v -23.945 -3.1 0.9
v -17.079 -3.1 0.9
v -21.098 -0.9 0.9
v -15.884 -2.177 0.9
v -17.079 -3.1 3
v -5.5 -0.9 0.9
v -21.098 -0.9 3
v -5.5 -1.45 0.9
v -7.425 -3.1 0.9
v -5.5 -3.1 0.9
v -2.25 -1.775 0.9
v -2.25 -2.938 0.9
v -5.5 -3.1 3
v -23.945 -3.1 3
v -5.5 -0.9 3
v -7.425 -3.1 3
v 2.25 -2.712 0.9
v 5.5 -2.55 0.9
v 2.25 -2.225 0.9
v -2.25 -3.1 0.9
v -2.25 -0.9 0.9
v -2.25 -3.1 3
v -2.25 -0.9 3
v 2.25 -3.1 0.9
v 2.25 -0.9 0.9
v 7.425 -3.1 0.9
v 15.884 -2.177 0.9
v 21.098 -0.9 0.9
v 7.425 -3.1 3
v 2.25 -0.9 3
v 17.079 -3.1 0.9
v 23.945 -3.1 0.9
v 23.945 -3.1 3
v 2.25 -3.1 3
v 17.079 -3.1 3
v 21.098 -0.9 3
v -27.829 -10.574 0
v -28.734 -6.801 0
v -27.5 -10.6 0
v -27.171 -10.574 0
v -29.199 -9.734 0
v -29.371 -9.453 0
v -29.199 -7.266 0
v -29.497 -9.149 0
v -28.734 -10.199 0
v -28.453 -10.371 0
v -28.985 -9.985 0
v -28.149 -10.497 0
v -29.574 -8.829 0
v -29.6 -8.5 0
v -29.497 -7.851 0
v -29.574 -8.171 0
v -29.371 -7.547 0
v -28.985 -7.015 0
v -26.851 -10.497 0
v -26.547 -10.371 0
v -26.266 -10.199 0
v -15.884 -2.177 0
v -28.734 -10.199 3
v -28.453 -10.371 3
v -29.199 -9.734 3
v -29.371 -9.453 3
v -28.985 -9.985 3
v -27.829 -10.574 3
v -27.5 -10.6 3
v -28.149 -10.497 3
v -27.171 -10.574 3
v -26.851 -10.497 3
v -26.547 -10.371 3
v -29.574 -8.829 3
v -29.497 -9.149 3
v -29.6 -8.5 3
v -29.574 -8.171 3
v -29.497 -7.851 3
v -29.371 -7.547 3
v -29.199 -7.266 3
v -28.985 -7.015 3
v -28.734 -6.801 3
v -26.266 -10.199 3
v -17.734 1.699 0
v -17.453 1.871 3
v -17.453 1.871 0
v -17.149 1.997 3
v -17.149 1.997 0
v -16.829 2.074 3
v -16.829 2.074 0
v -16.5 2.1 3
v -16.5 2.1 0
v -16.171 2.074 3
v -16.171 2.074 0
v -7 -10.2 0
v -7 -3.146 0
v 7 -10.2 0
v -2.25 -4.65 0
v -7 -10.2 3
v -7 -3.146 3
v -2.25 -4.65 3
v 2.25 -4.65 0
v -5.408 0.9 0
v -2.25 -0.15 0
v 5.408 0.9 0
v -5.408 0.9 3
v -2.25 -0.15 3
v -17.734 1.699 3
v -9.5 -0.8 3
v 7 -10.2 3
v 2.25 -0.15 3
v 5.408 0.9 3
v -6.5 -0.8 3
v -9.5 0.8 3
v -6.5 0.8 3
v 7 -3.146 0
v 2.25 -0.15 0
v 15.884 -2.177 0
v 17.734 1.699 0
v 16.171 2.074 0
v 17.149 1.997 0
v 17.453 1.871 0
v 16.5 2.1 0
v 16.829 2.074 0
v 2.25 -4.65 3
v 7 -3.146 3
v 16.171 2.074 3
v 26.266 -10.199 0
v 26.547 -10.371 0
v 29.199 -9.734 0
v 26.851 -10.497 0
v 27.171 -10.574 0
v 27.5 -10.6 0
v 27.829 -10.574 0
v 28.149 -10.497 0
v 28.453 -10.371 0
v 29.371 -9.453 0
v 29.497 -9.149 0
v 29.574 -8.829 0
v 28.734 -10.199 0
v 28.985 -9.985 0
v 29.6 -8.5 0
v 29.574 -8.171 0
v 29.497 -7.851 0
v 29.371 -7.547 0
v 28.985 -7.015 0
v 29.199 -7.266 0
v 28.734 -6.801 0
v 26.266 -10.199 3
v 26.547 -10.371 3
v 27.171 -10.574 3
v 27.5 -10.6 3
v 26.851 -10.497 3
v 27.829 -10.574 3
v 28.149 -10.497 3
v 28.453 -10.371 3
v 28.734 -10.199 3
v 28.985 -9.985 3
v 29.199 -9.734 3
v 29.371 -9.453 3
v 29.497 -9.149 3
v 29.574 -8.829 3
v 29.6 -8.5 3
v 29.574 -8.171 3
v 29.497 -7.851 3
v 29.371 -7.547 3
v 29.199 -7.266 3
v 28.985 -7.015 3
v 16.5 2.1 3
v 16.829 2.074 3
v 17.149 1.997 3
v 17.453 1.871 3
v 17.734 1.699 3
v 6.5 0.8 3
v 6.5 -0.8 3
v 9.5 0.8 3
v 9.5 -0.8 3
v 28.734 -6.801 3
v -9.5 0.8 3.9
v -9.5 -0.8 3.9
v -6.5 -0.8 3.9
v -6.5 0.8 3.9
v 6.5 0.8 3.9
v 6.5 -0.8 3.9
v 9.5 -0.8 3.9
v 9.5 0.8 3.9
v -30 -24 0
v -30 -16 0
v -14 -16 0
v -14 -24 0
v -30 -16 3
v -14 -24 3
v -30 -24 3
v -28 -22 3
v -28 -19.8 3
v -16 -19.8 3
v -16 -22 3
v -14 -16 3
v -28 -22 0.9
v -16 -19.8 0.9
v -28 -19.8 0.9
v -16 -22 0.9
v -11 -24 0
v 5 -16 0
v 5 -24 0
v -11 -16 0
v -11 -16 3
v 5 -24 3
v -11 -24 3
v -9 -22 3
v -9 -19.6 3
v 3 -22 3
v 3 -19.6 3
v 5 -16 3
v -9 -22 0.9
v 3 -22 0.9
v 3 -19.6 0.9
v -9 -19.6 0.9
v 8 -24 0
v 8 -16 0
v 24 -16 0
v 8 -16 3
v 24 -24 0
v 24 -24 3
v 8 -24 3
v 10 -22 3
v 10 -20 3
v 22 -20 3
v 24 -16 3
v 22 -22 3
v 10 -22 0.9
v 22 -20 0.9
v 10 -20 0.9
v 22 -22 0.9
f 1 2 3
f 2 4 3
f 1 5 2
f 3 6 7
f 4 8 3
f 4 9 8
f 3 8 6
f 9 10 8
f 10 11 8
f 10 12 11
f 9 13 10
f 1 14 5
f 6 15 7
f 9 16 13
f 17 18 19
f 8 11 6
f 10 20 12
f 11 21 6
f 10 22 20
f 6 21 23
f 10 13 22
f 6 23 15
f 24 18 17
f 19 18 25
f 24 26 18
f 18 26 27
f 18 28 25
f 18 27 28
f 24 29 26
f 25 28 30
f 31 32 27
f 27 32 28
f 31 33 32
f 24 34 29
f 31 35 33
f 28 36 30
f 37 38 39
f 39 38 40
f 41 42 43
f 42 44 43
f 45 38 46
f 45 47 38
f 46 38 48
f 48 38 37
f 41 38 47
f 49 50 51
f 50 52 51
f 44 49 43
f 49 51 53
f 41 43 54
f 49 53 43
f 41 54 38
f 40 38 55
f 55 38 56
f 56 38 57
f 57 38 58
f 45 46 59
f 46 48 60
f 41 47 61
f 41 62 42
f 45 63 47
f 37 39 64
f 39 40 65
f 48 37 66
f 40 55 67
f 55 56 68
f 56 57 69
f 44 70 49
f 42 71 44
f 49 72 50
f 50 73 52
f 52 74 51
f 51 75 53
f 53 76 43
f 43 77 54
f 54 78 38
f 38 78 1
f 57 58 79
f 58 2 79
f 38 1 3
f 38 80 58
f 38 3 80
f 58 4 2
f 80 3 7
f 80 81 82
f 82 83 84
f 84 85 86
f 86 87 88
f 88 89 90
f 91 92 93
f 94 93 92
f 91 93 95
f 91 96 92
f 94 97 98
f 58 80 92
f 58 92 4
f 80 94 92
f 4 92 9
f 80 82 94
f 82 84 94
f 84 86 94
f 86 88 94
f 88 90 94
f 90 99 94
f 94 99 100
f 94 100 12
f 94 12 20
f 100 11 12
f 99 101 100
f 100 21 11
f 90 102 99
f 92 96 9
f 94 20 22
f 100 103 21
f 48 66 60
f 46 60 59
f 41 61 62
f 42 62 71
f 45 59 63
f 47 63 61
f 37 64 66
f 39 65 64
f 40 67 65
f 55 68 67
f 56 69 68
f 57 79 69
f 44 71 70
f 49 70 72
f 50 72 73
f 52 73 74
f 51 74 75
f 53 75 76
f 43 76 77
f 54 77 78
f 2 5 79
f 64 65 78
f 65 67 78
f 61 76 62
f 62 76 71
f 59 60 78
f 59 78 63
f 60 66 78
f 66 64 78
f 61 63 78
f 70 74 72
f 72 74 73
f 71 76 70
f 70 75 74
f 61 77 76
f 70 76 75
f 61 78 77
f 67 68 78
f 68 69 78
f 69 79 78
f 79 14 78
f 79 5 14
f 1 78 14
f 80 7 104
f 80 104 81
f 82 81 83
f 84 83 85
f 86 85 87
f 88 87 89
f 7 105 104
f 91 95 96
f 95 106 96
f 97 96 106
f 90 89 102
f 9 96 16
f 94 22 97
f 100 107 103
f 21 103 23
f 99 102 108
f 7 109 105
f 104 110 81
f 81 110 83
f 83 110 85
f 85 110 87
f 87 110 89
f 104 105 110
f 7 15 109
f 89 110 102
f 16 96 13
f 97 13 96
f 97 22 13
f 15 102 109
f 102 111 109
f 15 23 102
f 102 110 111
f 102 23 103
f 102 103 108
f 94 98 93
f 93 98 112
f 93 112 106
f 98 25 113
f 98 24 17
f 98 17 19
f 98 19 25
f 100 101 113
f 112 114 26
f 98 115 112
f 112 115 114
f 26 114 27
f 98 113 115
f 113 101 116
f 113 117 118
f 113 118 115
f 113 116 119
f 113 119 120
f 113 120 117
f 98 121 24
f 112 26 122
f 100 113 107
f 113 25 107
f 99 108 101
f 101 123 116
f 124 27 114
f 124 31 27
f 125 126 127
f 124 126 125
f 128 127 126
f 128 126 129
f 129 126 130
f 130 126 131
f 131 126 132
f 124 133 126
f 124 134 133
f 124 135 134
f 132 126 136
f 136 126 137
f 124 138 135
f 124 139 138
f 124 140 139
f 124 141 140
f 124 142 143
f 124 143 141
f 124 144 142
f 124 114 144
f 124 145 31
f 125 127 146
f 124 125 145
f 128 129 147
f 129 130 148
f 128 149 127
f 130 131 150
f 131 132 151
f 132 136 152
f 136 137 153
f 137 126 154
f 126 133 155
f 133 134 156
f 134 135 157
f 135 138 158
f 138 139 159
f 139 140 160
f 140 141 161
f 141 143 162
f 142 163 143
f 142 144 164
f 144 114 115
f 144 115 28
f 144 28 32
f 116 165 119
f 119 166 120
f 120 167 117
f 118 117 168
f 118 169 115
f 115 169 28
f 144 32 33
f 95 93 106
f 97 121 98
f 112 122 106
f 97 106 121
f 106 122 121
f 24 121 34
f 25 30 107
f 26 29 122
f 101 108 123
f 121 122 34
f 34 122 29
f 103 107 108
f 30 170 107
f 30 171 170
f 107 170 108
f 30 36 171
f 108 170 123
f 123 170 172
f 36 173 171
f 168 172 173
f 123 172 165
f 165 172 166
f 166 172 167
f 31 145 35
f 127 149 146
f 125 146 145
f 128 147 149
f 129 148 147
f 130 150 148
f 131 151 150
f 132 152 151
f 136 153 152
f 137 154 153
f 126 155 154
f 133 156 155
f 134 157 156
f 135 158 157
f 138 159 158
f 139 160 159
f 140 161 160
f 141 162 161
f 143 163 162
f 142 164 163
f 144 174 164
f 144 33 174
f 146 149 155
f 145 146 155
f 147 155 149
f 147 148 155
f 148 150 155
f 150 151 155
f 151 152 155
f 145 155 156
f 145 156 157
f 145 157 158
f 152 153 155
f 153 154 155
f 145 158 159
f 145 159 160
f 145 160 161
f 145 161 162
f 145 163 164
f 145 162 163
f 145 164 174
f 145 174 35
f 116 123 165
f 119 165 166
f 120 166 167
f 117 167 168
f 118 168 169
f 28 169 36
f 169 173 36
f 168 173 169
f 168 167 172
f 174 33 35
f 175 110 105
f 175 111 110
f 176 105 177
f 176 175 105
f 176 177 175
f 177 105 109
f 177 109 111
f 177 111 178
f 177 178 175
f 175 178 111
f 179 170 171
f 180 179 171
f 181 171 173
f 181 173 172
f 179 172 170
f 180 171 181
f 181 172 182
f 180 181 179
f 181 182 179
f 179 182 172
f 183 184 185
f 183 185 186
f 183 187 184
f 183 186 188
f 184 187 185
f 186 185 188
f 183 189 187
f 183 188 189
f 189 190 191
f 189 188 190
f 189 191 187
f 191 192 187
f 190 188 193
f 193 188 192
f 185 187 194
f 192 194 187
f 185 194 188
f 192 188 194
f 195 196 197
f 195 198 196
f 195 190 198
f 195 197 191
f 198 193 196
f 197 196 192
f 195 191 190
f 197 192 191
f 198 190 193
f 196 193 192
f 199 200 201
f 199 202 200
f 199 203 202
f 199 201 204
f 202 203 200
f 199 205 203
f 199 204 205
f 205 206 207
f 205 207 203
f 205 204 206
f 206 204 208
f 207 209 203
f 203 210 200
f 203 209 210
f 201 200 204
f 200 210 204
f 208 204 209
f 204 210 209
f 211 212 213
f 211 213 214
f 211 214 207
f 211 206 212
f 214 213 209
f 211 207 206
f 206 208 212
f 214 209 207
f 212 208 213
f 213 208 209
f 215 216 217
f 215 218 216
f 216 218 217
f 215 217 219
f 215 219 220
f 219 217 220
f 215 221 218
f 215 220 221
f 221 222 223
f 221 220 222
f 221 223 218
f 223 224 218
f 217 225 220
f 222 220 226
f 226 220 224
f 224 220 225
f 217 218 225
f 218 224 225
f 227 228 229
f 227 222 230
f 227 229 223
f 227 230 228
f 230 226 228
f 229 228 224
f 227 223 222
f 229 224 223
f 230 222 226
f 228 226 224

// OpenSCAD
// Vanguard RX top clip (top-only) - parametric prototype
// Author: generated by Copilot
//
// Purpose:
// - Similar to Oakley-style inner clip geometry
// - Removes lateral and lower frame sections (top-only support)
// - Two retention modes:
//   1) "glue" : flat back pads for lens bonding
//   2) "slot" : rear channel to seat lens top edge
//
// Workflow:
// 1) Open this file in OpenSCAD.
// 2) Adjust the parameters in section A.
// 3) Render (F6) and export STL.
// 4) Slice in Bambu Studio.
//
// Units: mm

///////////////////////////////
// A) MAIN PARAMETERS
///////////////////////////////

// Preset (2026-06-26):
// - top width: 55 mm
// - lens edge thickness: 2.0 mm

// Global multiplier for quick scaling after first test print.
global_scale = 1.00;

// Overall layout (front view).
half_total_width = 27.5;    // half distance from center to outer edge (total = 55 mm)
inner_gap = 11;             // gap between left and right inner lens areas
outer_top_y = 0;            // reference top line
inner_top_y = -1.2;         // inner top point slightly lower
outer_drop = 8.5;           // outer end lower than top

// Top strip geometry.
strip_width = 4.2;          // visual strip height in front view
part_thickness = 3.0;       // extrusion thickness (increased for 2 mm lens slot)

// Bridge block (center).
bridge_w = 14;
bridge_h = 10;
bridge_hole = 4.5;          // center square hole, visual/lightening

// Optional top micro-tabs (to help centering on frame top ridge).
use_top_tabs = true;
tab_w = 3.0;
tab_h = 1.6;
tab_spacing = 16;           // distance from center to each tab

// Lens retention mode: "glue" or "slot"
retention_mode = "slot";

// Glue pad settings (if retention_mode == "glue")
glue_pad_depth = 1.3;
glue_pad_height = 1.8;

// Slot settings (if retention_mode == "slot")
slot_depth = 2.1;           // inward cut from back face (2.0 mm lens + clearance)
slot_height = 2.2;          // vertical channel height
slot_y_offset = -2.0;       // channel center in front view (negative = lower)

// Build helpers.
show_test_gauge = true;

///////////////////////////////
// B) DERIVED POINTS
///////////////////////////////

// Right side polyline control points for the top strip centerline.
function p_r_outer() = [ half_total_width, -outer_drop ];
function p_r_mid()   = [ (inner_gap/2 + half_total_width) / 2, outer_top_y ];
function p_r_inner() = [ inner_gap/2, inner_top_y ];

// Left side mirrors right side.
function mirror_x(p) = [ -p[0], p[1] ];

///////////////////////////////
// C) SHAPE BUILDERS
///////////////////////////////

module seg(a, b, r) {
    hull() {
        translate(a) circle(r=r, $fn=40);
        translate(b) circle(r=r, $fn=40);
    }
}

module top_strip_2d() {
    r = strip_width / 2;

    // Right lens top path
    union() {
        seg(p_r_outer(), p_r_mid(), r);
        seg(p_r_mid(), p_r_inner(), r);

        // Left lens top path
        seg(mirror_x(p_r_outer()), mirror_x(p_r_mid()), r);
        seg(mirror_x(p_r_mid()), mirror_x(p_r_inner()), r);

        // Center bridge connection between inner points
        seg(mirror_x(p_r_inner()), p_r_inner(), r);

        // Center bridge block (reinforcement)
        translate([0, inner_top_y - bridge_h/2 + 1.0])
            square([bridge_w, bridge_h], center=true);
    }
}

module body_3d() {
    linear_extrude(height=part_thickness)
        difference() {
            top_strip_2d();

            // Center square hole in bridge block
            translate([0, inner_top_y - 1.2])
                square([bridge_hole, bridge_hole], center=true);
        }
}

module add_top_tabs() {
    if (use_top_tabs) {
        for (sx = [-1, 1]) {
            translate([sx * tab_spacing/2 - tab_w/2, outer_top_y - tab_h/2, part_thickness])
                cube([tab_w, tab_h, 0.9]);
        }
    }
}

module add_glue_pads() {
    // Flat pads on rear side to bond lens upper edge.
    // Rear side is negative Z direction from printed orientation after slicing rotation.
    // Here we add on Z=0 face for easy print, then user can rotate in slicer.
    for (sx = [-1, 1]) {
        translate([sx * ((half_total_width + inner_gap/2)/2) - 20, slot_y_offset - glue_pad_height/2, 0])
            cube([40, glue_pad_height, glue_pad_depth]);
    }
}

module cut_slot_channel() {
    // Create rear channel for lens edge seating.
    // Two long cuts, one per side.
    for (sx = [-1, 1]) {
        translate([sx * ((half_total_width + inner_gap/2)/2) - 22, slot_y_offset - slot_height/2, part_thickness - slot_depth])
            cube([44, slot_height, slot_depth + 0.05]);
    }
}

module test_gauge() {
    // Small gauge to test lens-edge fit before full print.
    // Three channels: nominal, +0.2, -0.2
    base_x = -30;
    base_y = -24;
    base_z = 0;
    gauge_w = 16;
    gauge_h = 8;
    gauge_t = part_thickness;

    for (i = [0:2]) {
        x = base_x + i * (gauge_w + 3);
        slot_adj = (i==0) ? 0 : ((i==1) ? 0.2 : -0.2);

        difference() {
            translate([x, base_y, base_z]) cube([gauge_w, gauge_h, gauge_t]);
            translate([x+2, base_y+2, gauge_t-(slot_depth)])
                cube([gauge_w-4, slot_height + slot_adj, slot_depth + 0.05]);
        }
    }
}

///////////////////////////////
// D) FINAL ASSEMBLY
///////////////////////////////

module final_part() {
    if (retention_mode == "slot") {
        difference() {
            body_3d();
            cut_slot_channel();
        }
    } else {
        union() {
            body_3d();
            add_glue_pads();
        }
    }

    add_top_tabs();

    if (show_test_gauge && retention_mode == "slot")
        test_gauge();
}

scale([global_scale, global_scale, global_scale])
    final_part();

///////////////////////////////
// E) BAMBU START SETTINGS
///////////////////////////////
// Material: PETG (recommended) or PA-CF if available.
// Layer: 0.16 mm
// Walls: 4
// Infill: 35% Gyroid
// Top/Bottom: 5
// Brim: 5 mm
// Orientation: print flat (as designed)
// Optional anneal (PETG): 65 C for 30-40 min
